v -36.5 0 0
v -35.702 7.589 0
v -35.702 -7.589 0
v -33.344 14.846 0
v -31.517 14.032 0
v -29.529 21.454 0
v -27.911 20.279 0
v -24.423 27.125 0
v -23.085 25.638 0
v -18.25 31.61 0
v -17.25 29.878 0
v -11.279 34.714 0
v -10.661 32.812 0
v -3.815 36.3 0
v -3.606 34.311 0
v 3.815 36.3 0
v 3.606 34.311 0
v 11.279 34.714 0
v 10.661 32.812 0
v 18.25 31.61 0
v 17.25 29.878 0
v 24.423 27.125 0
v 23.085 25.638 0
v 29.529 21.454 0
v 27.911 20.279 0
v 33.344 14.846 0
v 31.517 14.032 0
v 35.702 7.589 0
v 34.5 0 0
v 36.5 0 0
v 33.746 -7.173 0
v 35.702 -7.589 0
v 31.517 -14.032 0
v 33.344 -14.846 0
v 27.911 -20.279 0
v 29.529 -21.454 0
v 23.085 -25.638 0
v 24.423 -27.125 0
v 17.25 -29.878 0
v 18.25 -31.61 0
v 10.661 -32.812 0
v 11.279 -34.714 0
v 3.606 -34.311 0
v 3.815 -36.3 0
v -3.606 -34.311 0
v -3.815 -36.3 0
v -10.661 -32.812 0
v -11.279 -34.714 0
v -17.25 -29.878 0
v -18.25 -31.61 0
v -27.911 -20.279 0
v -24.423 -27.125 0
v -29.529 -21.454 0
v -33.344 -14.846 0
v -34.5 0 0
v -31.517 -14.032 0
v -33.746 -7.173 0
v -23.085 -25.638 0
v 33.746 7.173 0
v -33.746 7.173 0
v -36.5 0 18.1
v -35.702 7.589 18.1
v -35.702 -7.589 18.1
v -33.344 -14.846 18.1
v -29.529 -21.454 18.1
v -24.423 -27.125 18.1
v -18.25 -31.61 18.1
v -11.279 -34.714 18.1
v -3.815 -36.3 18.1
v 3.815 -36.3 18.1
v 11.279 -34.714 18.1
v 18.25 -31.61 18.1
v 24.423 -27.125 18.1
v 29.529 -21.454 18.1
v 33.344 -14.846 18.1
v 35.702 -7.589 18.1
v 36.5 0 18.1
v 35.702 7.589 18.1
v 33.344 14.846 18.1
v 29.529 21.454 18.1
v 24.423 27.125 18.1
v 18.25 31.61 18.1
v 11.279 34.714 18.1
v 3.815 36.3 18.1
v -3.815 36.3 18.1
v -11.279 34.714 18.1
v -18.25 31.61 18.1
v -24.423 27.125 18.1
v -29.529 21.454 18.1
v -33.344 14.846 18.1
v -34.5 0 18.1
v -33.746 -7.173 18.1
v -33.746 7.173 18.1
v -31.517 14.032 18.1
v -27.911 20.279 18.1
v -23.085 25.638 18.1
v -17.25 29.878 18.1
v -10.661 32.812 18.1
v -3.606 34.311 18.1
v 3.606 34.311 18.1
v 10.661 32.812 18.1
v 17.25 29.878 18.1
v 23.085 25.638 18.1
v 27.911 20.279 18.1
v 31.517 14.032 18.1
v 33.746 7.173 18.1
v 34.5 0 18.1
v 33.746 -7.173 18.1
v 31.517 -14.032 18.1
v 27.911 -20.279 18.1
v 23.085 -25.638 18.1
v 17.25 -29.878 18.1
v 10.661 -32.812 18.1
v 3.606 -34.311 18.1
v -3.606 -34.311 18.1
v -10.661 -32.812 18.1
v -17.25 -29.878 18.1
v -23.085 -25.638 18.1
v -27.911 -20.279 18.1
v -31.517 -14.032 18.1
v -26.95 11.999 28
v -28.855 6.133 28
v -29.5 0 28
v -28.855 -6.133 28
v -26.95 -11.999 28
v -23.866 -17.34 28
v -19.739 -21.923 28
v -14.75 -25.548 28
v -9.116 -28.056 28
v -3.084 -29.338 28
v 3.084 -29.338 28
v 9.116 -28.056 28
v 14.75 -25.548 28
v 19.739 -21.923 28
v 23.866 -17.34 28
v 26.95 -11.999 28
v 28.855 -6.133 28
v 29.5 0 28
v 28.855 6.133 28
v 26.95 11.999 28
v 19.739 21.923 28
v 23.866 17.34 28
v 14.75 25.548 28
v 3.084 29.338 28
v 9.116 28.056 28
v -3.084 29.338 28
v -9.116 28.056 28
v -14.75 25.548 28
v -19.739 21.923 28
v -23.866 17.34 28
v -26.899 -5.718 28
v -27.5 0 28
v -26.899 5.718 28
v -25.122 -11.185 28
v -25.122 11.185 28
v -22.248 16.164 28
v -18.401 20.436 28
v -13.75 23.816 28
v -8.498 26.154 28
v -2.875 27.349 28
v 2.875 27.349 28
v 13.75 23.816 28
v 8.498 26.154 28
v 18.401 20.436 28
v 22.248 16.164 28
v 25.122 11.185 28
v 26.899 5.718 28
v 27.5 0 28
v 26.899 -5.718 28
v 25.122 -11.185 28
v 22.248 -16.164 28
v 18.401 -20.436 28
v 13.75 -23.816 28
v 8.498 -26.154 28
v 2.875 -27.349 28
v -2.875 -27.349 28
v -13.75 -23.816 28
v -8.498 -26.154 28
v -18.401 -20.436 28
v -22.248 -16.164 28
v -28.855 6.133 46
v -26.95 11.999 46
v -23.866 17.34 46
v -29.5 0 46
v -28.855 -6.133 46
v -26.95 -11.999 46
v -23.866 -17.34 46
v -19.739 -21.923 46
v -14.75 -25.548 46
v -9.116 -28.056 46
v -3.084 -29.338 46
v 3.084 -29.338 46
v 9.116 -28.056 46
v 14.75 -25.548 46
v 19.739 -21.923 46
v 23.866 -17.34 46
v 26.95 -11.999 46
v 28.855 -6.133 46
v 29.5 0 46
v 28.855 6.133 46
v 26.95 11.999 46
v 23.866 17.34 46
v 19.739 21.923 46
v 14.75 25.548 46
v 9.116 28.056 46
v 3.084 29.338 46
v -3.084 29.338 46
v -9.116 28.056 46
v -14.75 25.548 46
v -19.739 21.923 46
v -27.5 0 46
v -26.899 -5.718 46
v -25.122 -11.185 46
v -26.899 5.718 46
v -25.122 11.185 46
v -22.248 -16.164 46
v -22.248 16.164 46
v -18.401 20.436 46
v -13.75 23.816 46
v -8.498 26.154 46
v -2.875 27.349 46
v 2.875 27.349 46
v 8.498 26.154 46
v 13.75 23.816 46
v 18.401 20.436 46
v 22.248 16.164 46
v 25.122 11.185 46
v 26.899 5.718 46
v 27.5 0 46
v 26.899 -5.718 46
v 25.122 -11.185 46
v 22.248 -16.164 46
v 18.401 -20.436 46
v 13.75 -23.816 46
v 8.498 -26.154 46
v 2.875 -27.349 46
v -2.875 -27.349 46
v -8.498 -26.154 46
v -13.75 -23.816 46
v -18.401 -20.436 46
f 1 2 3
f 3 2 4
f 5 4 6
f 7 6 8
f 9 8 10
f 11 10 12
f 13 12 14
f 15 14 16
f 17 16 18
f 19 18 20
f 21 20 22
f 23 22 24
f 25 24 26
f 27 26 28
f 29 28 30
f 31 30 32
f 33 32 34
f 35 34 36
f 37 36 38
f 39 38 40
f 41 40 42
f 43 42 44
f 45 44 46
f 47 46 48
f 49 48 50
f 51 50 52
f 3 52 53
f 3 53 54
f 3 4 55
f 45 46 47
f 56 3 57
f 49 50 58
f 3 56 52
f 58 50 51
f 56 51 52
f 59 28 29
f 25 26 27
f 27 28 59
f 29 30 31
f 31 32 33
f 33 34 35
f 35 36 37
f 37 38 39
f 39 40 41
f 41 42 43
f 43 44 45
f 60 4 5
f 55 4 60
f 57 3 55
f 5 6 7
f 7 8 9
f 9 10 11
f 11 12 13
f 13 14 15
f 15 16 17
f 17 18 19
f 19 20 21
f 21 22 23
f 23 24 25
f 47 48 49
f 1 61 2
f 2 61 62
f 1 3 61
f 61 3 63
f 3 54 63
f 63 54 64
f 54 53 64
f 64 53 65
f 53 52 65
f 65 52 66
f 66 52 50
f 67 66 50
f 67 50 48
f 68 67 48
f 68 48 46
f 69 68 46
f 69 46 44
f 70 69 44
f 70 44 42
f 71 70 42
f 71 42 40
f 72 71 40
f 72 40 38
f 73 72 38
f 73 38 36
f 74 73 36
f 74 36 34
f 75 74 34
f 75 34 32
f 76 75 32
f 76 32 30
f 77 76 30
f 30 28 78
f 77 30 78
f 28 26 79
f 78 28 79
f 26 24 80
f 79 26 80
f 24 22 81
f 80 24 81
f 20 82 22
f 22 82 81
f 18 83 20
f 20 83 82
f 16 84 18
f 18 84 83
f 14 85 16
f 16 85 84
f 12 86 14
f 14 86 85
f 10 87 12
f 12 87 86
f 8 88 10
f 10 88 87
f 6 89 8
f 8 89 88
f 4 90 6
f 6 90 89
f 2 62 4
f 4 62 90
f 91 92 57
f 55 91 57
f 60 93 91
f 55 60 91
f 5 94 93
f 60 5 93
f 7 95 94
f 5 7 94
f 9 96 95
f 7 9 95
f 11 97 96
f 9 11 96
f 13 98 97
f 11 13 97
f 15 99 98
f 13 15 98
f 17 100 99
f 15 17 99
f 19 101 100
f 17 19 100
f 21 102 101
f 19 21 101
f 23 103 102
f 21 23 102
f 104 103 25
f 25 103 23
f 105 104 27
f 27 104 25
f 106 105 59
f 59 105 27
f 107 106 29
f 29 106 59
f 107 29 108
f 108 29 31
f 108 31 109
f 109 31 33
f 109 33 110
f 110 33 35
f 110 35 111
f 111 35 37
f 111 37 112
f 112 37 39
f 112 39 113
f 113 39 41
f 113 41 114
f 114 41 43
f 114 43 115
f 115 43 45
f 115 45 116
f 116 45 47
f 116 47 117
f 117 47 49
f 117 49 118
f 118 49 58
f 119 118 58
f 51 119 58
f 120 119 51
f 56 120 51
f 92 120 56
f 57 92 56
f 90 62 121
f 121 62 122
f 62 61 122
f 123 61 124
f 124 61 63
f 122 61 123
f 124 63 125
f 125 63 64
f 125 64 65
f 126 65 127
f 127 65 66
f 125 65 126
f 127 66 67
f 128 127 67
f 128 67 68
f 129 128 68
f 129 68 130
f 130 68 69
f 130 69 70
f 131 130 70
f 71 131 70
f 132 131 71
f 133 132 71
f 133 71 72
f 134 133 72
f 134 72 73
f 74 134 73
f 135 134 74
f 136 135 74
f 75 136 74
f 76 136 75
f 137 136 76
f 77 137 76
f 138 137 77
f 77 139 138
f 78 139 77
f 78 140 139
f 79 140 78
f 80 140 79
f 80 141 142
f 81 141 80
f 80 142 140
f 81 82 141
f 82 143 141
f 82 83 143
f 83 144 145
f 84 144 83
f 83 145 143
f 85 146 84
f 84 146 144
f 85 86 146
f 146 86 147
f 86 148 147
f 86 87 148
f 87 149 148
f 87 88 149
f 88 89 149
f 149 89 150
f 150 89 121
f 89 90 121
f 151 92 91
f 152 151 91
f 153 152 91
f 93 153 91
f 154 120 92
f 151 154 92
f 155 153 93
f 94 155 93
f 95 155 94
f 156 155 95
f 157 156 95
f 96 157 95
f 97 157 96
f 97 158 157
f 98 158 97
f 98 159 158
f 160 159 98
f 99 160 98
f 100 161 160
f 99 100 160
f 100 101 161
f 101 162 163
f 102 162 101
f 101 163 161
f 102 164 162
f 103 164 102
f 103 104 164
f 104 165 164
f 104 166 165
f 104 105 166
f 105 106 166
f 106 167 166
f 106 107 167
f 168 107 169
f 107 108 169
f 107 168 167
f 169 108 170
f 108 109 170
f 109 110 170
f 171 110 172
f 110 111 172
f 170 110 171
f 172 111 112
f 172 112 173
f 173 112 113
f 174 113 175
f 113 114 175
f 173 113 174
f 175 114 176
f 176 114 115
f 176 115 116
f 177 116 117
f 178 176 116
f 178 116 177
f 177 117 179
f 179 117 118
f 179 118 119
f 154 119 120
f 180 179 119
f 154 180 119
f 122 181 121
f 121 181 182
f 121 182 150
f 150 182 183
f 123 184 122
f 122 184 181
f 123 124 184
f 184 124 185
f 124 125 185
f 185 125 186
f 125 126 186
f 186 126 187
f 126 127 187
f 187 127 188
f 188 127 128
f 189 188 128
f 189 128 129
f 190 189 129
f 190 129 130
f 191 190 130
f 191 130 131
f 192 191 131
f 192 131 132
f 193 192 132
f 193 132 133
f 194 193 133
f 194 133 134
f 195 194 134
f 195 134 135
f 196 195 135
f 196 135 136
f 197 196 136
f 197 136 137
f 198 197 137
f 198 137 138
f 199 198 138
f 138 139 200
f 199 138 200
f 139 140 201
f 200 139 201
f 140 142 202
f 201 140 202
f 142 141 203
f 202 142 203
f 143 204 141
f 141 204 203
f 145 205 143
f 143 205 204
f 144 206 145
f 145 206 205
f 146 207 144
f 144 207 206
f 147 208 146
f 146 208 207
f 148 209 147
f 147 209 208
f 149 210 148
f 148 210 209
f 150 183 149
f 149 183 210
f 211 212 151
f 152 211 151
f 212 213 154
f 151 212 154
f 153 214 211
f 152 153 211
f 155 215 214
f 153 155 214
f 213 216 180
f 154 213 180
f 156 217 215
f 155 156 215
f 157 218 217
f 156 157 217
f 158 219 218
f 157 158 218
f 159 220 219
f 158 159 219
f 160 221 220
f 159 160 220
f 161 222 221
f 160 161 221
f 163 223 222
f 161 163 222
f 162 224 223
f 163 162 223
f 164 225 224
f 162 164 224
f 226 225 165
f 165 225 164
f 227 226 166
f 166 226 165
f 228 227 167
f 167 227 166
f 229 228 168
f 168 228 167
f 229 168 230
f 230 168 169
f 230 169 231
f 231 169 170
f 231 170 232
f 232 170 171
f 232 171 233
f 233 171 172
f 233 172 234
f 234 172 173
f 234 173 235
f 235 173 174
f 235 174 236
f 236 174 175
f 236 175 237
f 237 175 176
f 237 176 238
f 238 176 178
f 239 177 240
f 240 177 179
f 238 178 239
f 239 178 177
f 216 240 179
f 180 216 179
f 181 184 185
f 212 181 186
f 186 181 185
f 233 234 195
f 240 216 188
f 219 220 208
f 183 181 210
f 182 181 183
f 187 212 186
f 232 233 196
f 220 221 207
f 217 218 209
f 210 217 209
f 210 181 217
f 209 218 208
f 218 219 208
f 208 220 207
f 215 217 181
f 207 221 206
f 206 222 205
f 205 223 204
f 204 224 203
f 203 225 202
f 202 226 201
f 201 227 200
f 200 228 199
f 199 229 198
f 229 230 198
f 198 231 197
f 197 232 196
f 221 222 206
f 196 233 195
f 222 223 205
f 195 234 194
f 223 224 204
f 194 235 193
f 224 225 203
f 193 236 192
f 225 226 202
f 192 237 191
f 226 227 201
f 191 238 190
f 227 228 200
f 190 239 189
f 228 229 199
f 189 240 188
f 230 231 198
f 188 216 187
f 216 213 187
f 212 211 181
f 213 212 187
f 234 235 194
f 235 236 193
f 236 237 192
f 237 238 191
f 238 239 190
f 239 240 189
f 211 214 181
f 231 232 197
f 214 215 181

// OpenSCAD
Small = 27.5;
Large = 34.5;
SegmentLength = 18;
Transition = 10;
Thickness = 2;

difference()
{
	Adapter(Thickness);
	Adapter();
}


module Adapter(offset = 0)
{
	union()
	{
		hull()
		{
			translate([0,0,SegmentLength+Transition/2]) cylinder(r=Small + offset, h=Transition/2);
			translate([0,0,SegmentLength]) cylinder(r=Large + offset, h=.1);
		}
		translate([0,0,SegmentLength+Transition]) cylinder(r=Small + offset, h=SegmentLength);
		cylinder(r=Large + offset, h=SegmentLength);
	}
}
